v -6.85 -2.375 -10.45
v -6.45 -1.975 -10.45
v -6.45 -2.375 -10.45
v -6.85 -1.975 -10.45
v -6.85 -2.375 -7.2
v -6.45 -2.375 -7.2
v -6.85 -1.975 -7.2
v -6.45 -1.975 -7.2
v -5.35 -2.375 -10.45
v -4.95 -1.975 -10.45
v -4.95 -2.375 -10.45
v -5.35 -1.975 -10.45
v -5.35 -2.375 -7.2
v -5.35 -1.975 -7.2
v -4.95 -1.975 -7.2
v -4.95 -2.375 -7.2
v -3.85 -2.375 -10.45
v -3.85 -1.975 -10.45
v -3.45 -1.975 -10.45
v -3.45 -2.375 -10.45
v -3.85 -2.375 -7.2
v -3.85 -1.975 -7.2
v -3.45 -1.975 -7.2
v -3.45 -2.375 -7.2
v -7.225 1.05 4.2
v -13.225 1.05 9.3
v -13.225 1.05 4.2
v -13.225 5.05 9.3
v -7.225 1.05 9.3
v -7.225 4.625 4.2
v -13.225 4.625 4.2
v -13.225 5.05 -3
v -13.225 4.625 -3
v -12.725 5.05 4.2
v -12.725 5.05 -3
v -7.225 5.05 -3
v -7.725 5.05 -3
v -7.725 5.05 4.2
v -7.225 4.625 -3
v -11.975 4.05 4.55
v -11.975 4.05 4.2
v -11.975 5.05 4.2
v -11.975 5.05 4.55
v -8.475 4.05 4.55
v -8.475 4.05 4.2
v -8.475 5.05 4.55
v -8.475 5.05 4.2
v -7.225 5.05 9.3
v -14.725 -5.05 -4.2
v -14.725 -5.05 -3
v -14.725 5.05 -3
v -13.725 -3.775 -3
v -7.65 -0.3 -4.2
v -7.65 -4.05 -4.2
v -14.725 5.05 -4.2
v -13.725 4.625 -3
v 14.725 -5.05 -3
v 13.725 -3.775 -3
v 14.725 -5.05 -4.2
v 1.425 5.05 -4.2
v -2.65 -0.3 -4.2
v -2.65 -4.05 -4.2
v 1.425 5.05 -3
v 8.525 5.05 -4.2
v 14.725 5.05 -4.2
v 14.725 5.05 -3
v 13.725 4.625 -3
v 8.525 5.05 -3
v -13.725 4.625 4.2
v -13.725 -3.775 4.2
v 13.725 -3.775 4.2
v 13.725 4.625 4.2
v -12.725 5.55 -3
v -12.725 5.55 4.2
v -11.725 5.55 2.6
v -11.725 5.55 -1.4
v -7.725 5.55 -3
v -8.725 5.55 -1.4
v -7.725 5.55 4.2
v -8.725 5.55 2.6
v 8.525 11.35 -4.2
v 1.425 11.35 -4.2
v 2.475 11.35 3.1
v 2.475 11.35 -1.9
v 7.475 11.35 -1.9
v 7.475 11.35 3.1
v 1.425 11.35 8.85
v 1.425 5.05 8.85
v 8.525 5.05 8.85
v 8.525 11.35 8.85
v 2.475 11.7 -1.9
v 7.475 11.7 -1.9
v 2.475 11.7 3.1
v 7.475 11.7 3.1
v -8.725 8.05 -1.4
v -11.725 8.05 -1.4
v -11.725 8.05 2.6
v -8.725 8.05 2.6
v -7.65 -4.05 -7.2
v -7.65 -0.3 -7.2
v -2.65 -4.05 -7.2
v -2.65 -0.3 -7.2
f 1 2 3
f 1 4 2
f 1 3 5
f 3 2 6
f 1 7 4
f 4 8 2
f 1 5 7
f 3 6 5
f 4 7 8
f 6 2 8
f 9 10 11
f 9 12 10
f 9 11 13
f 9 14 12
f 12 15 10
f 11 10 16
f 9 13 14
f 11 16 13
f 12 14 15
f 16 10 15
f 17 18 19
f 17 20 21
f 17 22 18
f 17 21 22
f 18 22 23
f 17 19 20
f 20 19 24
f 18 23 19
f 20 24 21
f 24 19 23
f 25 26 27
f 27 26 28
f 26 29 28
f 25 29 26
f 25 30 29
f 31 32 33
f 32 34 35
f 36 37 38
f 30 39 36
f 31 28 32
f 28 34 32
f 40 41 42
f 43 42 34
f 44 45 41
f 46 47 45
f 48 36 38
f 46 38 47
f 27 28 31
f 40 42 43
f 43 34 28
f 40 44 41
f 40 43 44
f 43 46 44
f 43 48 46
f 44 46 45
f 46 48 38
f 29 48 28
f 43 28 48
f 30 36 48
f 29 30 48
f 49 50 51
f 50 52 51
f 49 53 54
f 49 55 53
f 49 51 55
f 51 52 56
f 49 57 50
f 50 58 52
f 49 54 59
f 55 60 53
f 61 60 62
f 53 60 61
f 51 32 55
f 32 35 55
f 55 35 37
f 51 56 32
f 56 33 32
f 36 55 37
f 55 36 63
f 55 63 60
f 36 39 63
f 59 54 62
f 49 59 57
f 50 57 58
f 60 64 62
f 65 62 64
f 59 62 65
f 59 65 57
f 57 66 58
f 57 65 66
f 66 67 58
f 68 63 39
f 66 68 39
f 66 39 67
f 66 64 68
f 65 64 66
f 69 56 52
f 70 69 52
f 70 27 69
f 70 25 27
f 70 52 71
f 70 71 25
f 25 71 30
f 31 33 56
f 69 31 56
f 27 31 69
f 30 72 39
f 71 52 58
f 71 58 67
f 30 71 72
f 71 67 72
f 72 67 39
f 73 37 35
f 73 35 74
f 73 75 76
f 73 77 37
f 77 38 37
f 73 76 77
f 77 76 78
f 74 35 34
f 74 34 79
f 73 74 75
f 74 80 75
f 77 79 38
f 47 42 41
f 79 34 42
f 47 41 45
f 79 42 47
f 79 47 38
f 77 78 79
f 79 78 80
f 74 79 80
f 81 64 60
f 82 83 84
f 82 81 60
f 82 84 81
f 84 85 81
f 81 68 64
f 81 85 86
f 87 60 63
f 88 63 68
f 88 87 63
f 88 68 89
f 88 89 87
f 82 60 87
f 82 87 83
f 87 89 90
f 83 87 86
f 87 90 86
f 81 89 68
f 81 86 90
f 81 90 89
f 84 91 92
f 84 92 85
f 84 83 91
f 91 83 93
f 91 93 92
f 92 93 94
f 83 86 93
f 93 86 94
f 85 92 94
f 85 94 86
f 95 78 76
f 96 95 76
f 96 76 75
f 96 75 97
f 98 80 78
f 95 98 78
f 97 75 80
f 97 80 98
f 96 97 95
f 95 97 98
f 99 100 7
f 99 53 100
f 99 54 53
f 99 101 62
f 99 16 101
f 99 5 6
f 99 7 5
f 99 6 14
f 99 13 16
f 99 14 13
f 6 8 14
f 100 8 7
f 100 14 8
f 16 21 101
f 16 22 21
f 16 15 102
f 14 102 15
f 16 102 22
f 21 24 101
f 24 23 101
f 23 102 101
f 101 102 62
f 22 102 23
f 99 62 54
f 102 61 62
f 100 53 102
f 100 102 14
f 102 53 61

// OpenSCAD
// Sharp GP2Y0D413K0F Distance Sensor Model
// Unit: mm
// Origin: center of body, mounting face (PWB/Connector side) facing -Z

$fn = 40;

// === Key dimensions from datasheet ===
// Overall width (left-right): 29.45mm total span
//   Light emitter center at *4.5 from left edge
//   Light detector at *19.7 from left edge (lens center)
//   Total width ~29.45 but the main case body
// From the drawing:
//   Bottom view: 7.5 + 4.15 + 16.3 = 27.95 (approx body width at base)
//   But top dimension shows 29.45 total span
// Main body width: ~29.45
// Body depth (front-back): 10.1 (PWB depth)
// Body heights: 8.4 total from PWB bottom to top of case
//   Case portion: 7.2 from PWB top surface
//   PWB thickness implied ~1.2
// Lens case: 7.1 wide, protrudes from front
//   Lens height: 13.05 from PWB bottom
//   Lens depth: (6.3) reference + 2 = ~8.3 from case front
// Connector: protrudes below, 3.3 wide, 13.5 tall area

// Derived dimensions
body_width = 29.45;
body_depth = 10.1;
pwb_thickness = 1.2;
case_height_above_pwb = 7.2;
total_case_height = case_height_above_pwb + pwb_thickness; // 8.4

// Lens case
lens_width = 7.1;
lens_height = 13.05;
lens_protrusion = 6.3; // reference dimension, depth beyond front face
lens_front_extra = 2.0; // the "2" shown before (6.3)

// Connector
connector_width = 3.3;
connector_depth = 3.75; // approximate from drawing
connector_drop = 1.2; // below PWB

// Light emitter bump
emitter_width = 4.5; // approximate
emitter_depth = 3.75;
emitter_height = total_case_height;

// Positions - lens center offset from body left edge
// From drawing: lens center is at 19.7 from left edge (marked with *)
// Light emitter center at 4.5 from left edge
// Body center is at body_width/2 = 14.725 from left edge

lens_center_from_left = 19.7;
emitter_center_from_left = 4.5;

// In our coordinate system, X=0 is body center
lens_center_x = lens_center_from_left - body_width/2;
emitter_center_x = emitter_center_from_left - body_width/2;

// Z coordinate: PWB bottom is at -total_case_height/2, top at +total_case_height/2
// But we want mounting face (PWB/connector side) at -Z
// So PWB bottom at z=0 would be wrong. Let's define:
//   Body center vertically: half of total_case_height
//   PWB bottom face is at -total_case_height/2
//   Case top face is at +total_case_height/2

// Actually lens_height = 13.05 from PWB bottom, and 18.9 is the max height dimension
// 18.9 seems to be total from some reference. Let me re-read:
// 13.05 is lens top from PWB bottom
// 18.9 appears to be total height including connector below

// Let me reconsider the Z axis:
// The mounting face (PWB bottom) faces -Z
// PWB bottom surface: z = 0 for calculation, then shift to center

// Heights from PWB bottom (z=0 before centering):
//   PWB top surface: z = pwb_thickness = 1.2
//   Case top: z = pwb_thickness + case_height_above_pwb = 1.2 + 7.2 = 8.4
//   Lens top: z = 13.05
//   Connector bottom: z = -connector_drop (below PWB)

// For centering at body center, the body goes from z=0 (PWB bottom) to z=8.4 (case top)
// Center of main body: z = 8.4/2 = 4.2
// So offset everything by -4.2

z_offset = -total_case_height / 2;

// Y axis: front face (sensor/lens side) faces +Y, PWB back faces -Y
// PWB depth = 10.1, main case sits on PWB
// Let's say PWB back face at y = -body_depth/2, front face at y = +body_depth/2

module sensor() {
    // === PWB (Printed Wiring Board) ===
    // The green PCB substrate
    color("darkgreen")
    translate([0, 0, z_offset + pwb_thickness/2])
        cube([body_width, body_depth, pwb_thickness], center=true);

    // === Main Case (Carbonic ABS) ===
    // Sits on top of PWB, covers most of the width
    // From the side view, case is roughly 8.4mm wide (depth) and 7.2mm tall above PWB
    case_depth = 8.4; // approximate case depth, slightly less than PWB
    
    color("dimgray")
    translate([0, (body_depth - case_depth)/2 - (body_depth - case_depth)/4, 
               z_offset + pwb_thickness + case_height_above_pwb/2])
        cube([body_width - 2, case_depth, case_height_above_pwb], center=true);

    // === Light Emitter Housing ===
    // Left side bump, extends a bit taller than main case
    // From drawing it looks like a separate protruding element
    color("dimgray")
    translate([emitter_center_x, body_depth/2 - emitter_depth/2, 
               z_offset + pwb_thickness + case_height_above_pwb/2])
        cube([5.0, emitter_depth + 1, case_height_above_pwb], center=true);

    // === Lens Case (Acrylic acid resin) ===
    // Protrudes from the front of the case, on the right side
    // Width: 7.1mm, height: 13.05 from PWB bottom
    // Protrudes forward by (6.3) + 2 from front of case roughly
    lens_total_depth = lens_protrusion;
    lens_z_center = z_offset + lens_height / 2;
    
    // Lens housing - rectangular with slight features
    color("black")
    translate([lens_center_x, body_depth/2 + lens_total_depth/2, lens_z_center])
        cube([lens_width, lens_total_depth, lens_height], center=true);
    
    // Lens aperture (front face detail)
    color("darkred")
    translate([lens_center_x, body_depth/2 + lens_total_depth + 0.1, 
               z_offset + pwb_thickness + case_height_above_pwb/2])
        cube([5, 0.5, 5], center=true);

    // === Light Emitter Window ===
    // Small window/lens on the emitter side
    color("darkred")
    translate([emitter_center_x, body_depth/2 + 1.5, 
               z_offset + pwb_thickness + case_height_above_pwb/2])
        cube([3, 3, 4], center=true);

    // === Connector ===
    // 3-pin connector on the back, bottom side
    // From bottom view: pins labeled 1,2,3 on left side
    // Connector width ~3.3, hangs below PWB
    // Position: from bottom view drawing, connector is roughly centered 
    // around x position near 7.5+4.15 area from left = ~11.65 from left
    // Actually from side view, connector is at back of PWB
    
    connector_x_from_left = 7.5 + 4.15/2; // approximate center from bottom view
    connector_x = connector_x_from_left - body_width/2;
    connector_height = 3.0;
    connector_actual_width = 5.0; // 3-pin connector housing width
    
    color("ivory")
    translate([connector_x, -body_depth/2 + connector_depth/2 + 1, 
               z_offset - connector_height/2])
        cube([connector_actual_width, connector_depth, connector_height], center=true);

    // === Connector Pins ===
    pin_spacing = 1.5; // typical for small connectors
    for (i = [-1, 0, 1]) {
        color("gold")
        translate([connector_x + i * pin_spacing, 
                   -body_depth/2 + connector_depth/2 + 1,
                   z_offset - connector_height - 1.5])
            cube([0.4, 0.4, 3.5], center=true);
    }

    // === Bottom view outline features ===
    // The sensor has a distinctive bottom profile with notch/step
    // From bottom view: 7.5 | 4.15 | 16.3 = 27.95, close to 29.45 with margins
    
    // Side profile - the case has a step on the left (emitter) side
    // Height from side: 13.5 shown for the emitter+case area
    emitter_total_height = 13.5;
    
    color("dimgray")
    translate([emitter_center_x, body_depth/2 - 2, 
               z_offset + emitter_total_height/2]) {
        difference() {
            cube([6, 4, emitter_total_height], center=true);
            // Cutout for LED window
            translate([0, 2, 0])
                cube([3.5, 2, 4], center=true);
        }
    }
}

// Render the sensor
sensor();
